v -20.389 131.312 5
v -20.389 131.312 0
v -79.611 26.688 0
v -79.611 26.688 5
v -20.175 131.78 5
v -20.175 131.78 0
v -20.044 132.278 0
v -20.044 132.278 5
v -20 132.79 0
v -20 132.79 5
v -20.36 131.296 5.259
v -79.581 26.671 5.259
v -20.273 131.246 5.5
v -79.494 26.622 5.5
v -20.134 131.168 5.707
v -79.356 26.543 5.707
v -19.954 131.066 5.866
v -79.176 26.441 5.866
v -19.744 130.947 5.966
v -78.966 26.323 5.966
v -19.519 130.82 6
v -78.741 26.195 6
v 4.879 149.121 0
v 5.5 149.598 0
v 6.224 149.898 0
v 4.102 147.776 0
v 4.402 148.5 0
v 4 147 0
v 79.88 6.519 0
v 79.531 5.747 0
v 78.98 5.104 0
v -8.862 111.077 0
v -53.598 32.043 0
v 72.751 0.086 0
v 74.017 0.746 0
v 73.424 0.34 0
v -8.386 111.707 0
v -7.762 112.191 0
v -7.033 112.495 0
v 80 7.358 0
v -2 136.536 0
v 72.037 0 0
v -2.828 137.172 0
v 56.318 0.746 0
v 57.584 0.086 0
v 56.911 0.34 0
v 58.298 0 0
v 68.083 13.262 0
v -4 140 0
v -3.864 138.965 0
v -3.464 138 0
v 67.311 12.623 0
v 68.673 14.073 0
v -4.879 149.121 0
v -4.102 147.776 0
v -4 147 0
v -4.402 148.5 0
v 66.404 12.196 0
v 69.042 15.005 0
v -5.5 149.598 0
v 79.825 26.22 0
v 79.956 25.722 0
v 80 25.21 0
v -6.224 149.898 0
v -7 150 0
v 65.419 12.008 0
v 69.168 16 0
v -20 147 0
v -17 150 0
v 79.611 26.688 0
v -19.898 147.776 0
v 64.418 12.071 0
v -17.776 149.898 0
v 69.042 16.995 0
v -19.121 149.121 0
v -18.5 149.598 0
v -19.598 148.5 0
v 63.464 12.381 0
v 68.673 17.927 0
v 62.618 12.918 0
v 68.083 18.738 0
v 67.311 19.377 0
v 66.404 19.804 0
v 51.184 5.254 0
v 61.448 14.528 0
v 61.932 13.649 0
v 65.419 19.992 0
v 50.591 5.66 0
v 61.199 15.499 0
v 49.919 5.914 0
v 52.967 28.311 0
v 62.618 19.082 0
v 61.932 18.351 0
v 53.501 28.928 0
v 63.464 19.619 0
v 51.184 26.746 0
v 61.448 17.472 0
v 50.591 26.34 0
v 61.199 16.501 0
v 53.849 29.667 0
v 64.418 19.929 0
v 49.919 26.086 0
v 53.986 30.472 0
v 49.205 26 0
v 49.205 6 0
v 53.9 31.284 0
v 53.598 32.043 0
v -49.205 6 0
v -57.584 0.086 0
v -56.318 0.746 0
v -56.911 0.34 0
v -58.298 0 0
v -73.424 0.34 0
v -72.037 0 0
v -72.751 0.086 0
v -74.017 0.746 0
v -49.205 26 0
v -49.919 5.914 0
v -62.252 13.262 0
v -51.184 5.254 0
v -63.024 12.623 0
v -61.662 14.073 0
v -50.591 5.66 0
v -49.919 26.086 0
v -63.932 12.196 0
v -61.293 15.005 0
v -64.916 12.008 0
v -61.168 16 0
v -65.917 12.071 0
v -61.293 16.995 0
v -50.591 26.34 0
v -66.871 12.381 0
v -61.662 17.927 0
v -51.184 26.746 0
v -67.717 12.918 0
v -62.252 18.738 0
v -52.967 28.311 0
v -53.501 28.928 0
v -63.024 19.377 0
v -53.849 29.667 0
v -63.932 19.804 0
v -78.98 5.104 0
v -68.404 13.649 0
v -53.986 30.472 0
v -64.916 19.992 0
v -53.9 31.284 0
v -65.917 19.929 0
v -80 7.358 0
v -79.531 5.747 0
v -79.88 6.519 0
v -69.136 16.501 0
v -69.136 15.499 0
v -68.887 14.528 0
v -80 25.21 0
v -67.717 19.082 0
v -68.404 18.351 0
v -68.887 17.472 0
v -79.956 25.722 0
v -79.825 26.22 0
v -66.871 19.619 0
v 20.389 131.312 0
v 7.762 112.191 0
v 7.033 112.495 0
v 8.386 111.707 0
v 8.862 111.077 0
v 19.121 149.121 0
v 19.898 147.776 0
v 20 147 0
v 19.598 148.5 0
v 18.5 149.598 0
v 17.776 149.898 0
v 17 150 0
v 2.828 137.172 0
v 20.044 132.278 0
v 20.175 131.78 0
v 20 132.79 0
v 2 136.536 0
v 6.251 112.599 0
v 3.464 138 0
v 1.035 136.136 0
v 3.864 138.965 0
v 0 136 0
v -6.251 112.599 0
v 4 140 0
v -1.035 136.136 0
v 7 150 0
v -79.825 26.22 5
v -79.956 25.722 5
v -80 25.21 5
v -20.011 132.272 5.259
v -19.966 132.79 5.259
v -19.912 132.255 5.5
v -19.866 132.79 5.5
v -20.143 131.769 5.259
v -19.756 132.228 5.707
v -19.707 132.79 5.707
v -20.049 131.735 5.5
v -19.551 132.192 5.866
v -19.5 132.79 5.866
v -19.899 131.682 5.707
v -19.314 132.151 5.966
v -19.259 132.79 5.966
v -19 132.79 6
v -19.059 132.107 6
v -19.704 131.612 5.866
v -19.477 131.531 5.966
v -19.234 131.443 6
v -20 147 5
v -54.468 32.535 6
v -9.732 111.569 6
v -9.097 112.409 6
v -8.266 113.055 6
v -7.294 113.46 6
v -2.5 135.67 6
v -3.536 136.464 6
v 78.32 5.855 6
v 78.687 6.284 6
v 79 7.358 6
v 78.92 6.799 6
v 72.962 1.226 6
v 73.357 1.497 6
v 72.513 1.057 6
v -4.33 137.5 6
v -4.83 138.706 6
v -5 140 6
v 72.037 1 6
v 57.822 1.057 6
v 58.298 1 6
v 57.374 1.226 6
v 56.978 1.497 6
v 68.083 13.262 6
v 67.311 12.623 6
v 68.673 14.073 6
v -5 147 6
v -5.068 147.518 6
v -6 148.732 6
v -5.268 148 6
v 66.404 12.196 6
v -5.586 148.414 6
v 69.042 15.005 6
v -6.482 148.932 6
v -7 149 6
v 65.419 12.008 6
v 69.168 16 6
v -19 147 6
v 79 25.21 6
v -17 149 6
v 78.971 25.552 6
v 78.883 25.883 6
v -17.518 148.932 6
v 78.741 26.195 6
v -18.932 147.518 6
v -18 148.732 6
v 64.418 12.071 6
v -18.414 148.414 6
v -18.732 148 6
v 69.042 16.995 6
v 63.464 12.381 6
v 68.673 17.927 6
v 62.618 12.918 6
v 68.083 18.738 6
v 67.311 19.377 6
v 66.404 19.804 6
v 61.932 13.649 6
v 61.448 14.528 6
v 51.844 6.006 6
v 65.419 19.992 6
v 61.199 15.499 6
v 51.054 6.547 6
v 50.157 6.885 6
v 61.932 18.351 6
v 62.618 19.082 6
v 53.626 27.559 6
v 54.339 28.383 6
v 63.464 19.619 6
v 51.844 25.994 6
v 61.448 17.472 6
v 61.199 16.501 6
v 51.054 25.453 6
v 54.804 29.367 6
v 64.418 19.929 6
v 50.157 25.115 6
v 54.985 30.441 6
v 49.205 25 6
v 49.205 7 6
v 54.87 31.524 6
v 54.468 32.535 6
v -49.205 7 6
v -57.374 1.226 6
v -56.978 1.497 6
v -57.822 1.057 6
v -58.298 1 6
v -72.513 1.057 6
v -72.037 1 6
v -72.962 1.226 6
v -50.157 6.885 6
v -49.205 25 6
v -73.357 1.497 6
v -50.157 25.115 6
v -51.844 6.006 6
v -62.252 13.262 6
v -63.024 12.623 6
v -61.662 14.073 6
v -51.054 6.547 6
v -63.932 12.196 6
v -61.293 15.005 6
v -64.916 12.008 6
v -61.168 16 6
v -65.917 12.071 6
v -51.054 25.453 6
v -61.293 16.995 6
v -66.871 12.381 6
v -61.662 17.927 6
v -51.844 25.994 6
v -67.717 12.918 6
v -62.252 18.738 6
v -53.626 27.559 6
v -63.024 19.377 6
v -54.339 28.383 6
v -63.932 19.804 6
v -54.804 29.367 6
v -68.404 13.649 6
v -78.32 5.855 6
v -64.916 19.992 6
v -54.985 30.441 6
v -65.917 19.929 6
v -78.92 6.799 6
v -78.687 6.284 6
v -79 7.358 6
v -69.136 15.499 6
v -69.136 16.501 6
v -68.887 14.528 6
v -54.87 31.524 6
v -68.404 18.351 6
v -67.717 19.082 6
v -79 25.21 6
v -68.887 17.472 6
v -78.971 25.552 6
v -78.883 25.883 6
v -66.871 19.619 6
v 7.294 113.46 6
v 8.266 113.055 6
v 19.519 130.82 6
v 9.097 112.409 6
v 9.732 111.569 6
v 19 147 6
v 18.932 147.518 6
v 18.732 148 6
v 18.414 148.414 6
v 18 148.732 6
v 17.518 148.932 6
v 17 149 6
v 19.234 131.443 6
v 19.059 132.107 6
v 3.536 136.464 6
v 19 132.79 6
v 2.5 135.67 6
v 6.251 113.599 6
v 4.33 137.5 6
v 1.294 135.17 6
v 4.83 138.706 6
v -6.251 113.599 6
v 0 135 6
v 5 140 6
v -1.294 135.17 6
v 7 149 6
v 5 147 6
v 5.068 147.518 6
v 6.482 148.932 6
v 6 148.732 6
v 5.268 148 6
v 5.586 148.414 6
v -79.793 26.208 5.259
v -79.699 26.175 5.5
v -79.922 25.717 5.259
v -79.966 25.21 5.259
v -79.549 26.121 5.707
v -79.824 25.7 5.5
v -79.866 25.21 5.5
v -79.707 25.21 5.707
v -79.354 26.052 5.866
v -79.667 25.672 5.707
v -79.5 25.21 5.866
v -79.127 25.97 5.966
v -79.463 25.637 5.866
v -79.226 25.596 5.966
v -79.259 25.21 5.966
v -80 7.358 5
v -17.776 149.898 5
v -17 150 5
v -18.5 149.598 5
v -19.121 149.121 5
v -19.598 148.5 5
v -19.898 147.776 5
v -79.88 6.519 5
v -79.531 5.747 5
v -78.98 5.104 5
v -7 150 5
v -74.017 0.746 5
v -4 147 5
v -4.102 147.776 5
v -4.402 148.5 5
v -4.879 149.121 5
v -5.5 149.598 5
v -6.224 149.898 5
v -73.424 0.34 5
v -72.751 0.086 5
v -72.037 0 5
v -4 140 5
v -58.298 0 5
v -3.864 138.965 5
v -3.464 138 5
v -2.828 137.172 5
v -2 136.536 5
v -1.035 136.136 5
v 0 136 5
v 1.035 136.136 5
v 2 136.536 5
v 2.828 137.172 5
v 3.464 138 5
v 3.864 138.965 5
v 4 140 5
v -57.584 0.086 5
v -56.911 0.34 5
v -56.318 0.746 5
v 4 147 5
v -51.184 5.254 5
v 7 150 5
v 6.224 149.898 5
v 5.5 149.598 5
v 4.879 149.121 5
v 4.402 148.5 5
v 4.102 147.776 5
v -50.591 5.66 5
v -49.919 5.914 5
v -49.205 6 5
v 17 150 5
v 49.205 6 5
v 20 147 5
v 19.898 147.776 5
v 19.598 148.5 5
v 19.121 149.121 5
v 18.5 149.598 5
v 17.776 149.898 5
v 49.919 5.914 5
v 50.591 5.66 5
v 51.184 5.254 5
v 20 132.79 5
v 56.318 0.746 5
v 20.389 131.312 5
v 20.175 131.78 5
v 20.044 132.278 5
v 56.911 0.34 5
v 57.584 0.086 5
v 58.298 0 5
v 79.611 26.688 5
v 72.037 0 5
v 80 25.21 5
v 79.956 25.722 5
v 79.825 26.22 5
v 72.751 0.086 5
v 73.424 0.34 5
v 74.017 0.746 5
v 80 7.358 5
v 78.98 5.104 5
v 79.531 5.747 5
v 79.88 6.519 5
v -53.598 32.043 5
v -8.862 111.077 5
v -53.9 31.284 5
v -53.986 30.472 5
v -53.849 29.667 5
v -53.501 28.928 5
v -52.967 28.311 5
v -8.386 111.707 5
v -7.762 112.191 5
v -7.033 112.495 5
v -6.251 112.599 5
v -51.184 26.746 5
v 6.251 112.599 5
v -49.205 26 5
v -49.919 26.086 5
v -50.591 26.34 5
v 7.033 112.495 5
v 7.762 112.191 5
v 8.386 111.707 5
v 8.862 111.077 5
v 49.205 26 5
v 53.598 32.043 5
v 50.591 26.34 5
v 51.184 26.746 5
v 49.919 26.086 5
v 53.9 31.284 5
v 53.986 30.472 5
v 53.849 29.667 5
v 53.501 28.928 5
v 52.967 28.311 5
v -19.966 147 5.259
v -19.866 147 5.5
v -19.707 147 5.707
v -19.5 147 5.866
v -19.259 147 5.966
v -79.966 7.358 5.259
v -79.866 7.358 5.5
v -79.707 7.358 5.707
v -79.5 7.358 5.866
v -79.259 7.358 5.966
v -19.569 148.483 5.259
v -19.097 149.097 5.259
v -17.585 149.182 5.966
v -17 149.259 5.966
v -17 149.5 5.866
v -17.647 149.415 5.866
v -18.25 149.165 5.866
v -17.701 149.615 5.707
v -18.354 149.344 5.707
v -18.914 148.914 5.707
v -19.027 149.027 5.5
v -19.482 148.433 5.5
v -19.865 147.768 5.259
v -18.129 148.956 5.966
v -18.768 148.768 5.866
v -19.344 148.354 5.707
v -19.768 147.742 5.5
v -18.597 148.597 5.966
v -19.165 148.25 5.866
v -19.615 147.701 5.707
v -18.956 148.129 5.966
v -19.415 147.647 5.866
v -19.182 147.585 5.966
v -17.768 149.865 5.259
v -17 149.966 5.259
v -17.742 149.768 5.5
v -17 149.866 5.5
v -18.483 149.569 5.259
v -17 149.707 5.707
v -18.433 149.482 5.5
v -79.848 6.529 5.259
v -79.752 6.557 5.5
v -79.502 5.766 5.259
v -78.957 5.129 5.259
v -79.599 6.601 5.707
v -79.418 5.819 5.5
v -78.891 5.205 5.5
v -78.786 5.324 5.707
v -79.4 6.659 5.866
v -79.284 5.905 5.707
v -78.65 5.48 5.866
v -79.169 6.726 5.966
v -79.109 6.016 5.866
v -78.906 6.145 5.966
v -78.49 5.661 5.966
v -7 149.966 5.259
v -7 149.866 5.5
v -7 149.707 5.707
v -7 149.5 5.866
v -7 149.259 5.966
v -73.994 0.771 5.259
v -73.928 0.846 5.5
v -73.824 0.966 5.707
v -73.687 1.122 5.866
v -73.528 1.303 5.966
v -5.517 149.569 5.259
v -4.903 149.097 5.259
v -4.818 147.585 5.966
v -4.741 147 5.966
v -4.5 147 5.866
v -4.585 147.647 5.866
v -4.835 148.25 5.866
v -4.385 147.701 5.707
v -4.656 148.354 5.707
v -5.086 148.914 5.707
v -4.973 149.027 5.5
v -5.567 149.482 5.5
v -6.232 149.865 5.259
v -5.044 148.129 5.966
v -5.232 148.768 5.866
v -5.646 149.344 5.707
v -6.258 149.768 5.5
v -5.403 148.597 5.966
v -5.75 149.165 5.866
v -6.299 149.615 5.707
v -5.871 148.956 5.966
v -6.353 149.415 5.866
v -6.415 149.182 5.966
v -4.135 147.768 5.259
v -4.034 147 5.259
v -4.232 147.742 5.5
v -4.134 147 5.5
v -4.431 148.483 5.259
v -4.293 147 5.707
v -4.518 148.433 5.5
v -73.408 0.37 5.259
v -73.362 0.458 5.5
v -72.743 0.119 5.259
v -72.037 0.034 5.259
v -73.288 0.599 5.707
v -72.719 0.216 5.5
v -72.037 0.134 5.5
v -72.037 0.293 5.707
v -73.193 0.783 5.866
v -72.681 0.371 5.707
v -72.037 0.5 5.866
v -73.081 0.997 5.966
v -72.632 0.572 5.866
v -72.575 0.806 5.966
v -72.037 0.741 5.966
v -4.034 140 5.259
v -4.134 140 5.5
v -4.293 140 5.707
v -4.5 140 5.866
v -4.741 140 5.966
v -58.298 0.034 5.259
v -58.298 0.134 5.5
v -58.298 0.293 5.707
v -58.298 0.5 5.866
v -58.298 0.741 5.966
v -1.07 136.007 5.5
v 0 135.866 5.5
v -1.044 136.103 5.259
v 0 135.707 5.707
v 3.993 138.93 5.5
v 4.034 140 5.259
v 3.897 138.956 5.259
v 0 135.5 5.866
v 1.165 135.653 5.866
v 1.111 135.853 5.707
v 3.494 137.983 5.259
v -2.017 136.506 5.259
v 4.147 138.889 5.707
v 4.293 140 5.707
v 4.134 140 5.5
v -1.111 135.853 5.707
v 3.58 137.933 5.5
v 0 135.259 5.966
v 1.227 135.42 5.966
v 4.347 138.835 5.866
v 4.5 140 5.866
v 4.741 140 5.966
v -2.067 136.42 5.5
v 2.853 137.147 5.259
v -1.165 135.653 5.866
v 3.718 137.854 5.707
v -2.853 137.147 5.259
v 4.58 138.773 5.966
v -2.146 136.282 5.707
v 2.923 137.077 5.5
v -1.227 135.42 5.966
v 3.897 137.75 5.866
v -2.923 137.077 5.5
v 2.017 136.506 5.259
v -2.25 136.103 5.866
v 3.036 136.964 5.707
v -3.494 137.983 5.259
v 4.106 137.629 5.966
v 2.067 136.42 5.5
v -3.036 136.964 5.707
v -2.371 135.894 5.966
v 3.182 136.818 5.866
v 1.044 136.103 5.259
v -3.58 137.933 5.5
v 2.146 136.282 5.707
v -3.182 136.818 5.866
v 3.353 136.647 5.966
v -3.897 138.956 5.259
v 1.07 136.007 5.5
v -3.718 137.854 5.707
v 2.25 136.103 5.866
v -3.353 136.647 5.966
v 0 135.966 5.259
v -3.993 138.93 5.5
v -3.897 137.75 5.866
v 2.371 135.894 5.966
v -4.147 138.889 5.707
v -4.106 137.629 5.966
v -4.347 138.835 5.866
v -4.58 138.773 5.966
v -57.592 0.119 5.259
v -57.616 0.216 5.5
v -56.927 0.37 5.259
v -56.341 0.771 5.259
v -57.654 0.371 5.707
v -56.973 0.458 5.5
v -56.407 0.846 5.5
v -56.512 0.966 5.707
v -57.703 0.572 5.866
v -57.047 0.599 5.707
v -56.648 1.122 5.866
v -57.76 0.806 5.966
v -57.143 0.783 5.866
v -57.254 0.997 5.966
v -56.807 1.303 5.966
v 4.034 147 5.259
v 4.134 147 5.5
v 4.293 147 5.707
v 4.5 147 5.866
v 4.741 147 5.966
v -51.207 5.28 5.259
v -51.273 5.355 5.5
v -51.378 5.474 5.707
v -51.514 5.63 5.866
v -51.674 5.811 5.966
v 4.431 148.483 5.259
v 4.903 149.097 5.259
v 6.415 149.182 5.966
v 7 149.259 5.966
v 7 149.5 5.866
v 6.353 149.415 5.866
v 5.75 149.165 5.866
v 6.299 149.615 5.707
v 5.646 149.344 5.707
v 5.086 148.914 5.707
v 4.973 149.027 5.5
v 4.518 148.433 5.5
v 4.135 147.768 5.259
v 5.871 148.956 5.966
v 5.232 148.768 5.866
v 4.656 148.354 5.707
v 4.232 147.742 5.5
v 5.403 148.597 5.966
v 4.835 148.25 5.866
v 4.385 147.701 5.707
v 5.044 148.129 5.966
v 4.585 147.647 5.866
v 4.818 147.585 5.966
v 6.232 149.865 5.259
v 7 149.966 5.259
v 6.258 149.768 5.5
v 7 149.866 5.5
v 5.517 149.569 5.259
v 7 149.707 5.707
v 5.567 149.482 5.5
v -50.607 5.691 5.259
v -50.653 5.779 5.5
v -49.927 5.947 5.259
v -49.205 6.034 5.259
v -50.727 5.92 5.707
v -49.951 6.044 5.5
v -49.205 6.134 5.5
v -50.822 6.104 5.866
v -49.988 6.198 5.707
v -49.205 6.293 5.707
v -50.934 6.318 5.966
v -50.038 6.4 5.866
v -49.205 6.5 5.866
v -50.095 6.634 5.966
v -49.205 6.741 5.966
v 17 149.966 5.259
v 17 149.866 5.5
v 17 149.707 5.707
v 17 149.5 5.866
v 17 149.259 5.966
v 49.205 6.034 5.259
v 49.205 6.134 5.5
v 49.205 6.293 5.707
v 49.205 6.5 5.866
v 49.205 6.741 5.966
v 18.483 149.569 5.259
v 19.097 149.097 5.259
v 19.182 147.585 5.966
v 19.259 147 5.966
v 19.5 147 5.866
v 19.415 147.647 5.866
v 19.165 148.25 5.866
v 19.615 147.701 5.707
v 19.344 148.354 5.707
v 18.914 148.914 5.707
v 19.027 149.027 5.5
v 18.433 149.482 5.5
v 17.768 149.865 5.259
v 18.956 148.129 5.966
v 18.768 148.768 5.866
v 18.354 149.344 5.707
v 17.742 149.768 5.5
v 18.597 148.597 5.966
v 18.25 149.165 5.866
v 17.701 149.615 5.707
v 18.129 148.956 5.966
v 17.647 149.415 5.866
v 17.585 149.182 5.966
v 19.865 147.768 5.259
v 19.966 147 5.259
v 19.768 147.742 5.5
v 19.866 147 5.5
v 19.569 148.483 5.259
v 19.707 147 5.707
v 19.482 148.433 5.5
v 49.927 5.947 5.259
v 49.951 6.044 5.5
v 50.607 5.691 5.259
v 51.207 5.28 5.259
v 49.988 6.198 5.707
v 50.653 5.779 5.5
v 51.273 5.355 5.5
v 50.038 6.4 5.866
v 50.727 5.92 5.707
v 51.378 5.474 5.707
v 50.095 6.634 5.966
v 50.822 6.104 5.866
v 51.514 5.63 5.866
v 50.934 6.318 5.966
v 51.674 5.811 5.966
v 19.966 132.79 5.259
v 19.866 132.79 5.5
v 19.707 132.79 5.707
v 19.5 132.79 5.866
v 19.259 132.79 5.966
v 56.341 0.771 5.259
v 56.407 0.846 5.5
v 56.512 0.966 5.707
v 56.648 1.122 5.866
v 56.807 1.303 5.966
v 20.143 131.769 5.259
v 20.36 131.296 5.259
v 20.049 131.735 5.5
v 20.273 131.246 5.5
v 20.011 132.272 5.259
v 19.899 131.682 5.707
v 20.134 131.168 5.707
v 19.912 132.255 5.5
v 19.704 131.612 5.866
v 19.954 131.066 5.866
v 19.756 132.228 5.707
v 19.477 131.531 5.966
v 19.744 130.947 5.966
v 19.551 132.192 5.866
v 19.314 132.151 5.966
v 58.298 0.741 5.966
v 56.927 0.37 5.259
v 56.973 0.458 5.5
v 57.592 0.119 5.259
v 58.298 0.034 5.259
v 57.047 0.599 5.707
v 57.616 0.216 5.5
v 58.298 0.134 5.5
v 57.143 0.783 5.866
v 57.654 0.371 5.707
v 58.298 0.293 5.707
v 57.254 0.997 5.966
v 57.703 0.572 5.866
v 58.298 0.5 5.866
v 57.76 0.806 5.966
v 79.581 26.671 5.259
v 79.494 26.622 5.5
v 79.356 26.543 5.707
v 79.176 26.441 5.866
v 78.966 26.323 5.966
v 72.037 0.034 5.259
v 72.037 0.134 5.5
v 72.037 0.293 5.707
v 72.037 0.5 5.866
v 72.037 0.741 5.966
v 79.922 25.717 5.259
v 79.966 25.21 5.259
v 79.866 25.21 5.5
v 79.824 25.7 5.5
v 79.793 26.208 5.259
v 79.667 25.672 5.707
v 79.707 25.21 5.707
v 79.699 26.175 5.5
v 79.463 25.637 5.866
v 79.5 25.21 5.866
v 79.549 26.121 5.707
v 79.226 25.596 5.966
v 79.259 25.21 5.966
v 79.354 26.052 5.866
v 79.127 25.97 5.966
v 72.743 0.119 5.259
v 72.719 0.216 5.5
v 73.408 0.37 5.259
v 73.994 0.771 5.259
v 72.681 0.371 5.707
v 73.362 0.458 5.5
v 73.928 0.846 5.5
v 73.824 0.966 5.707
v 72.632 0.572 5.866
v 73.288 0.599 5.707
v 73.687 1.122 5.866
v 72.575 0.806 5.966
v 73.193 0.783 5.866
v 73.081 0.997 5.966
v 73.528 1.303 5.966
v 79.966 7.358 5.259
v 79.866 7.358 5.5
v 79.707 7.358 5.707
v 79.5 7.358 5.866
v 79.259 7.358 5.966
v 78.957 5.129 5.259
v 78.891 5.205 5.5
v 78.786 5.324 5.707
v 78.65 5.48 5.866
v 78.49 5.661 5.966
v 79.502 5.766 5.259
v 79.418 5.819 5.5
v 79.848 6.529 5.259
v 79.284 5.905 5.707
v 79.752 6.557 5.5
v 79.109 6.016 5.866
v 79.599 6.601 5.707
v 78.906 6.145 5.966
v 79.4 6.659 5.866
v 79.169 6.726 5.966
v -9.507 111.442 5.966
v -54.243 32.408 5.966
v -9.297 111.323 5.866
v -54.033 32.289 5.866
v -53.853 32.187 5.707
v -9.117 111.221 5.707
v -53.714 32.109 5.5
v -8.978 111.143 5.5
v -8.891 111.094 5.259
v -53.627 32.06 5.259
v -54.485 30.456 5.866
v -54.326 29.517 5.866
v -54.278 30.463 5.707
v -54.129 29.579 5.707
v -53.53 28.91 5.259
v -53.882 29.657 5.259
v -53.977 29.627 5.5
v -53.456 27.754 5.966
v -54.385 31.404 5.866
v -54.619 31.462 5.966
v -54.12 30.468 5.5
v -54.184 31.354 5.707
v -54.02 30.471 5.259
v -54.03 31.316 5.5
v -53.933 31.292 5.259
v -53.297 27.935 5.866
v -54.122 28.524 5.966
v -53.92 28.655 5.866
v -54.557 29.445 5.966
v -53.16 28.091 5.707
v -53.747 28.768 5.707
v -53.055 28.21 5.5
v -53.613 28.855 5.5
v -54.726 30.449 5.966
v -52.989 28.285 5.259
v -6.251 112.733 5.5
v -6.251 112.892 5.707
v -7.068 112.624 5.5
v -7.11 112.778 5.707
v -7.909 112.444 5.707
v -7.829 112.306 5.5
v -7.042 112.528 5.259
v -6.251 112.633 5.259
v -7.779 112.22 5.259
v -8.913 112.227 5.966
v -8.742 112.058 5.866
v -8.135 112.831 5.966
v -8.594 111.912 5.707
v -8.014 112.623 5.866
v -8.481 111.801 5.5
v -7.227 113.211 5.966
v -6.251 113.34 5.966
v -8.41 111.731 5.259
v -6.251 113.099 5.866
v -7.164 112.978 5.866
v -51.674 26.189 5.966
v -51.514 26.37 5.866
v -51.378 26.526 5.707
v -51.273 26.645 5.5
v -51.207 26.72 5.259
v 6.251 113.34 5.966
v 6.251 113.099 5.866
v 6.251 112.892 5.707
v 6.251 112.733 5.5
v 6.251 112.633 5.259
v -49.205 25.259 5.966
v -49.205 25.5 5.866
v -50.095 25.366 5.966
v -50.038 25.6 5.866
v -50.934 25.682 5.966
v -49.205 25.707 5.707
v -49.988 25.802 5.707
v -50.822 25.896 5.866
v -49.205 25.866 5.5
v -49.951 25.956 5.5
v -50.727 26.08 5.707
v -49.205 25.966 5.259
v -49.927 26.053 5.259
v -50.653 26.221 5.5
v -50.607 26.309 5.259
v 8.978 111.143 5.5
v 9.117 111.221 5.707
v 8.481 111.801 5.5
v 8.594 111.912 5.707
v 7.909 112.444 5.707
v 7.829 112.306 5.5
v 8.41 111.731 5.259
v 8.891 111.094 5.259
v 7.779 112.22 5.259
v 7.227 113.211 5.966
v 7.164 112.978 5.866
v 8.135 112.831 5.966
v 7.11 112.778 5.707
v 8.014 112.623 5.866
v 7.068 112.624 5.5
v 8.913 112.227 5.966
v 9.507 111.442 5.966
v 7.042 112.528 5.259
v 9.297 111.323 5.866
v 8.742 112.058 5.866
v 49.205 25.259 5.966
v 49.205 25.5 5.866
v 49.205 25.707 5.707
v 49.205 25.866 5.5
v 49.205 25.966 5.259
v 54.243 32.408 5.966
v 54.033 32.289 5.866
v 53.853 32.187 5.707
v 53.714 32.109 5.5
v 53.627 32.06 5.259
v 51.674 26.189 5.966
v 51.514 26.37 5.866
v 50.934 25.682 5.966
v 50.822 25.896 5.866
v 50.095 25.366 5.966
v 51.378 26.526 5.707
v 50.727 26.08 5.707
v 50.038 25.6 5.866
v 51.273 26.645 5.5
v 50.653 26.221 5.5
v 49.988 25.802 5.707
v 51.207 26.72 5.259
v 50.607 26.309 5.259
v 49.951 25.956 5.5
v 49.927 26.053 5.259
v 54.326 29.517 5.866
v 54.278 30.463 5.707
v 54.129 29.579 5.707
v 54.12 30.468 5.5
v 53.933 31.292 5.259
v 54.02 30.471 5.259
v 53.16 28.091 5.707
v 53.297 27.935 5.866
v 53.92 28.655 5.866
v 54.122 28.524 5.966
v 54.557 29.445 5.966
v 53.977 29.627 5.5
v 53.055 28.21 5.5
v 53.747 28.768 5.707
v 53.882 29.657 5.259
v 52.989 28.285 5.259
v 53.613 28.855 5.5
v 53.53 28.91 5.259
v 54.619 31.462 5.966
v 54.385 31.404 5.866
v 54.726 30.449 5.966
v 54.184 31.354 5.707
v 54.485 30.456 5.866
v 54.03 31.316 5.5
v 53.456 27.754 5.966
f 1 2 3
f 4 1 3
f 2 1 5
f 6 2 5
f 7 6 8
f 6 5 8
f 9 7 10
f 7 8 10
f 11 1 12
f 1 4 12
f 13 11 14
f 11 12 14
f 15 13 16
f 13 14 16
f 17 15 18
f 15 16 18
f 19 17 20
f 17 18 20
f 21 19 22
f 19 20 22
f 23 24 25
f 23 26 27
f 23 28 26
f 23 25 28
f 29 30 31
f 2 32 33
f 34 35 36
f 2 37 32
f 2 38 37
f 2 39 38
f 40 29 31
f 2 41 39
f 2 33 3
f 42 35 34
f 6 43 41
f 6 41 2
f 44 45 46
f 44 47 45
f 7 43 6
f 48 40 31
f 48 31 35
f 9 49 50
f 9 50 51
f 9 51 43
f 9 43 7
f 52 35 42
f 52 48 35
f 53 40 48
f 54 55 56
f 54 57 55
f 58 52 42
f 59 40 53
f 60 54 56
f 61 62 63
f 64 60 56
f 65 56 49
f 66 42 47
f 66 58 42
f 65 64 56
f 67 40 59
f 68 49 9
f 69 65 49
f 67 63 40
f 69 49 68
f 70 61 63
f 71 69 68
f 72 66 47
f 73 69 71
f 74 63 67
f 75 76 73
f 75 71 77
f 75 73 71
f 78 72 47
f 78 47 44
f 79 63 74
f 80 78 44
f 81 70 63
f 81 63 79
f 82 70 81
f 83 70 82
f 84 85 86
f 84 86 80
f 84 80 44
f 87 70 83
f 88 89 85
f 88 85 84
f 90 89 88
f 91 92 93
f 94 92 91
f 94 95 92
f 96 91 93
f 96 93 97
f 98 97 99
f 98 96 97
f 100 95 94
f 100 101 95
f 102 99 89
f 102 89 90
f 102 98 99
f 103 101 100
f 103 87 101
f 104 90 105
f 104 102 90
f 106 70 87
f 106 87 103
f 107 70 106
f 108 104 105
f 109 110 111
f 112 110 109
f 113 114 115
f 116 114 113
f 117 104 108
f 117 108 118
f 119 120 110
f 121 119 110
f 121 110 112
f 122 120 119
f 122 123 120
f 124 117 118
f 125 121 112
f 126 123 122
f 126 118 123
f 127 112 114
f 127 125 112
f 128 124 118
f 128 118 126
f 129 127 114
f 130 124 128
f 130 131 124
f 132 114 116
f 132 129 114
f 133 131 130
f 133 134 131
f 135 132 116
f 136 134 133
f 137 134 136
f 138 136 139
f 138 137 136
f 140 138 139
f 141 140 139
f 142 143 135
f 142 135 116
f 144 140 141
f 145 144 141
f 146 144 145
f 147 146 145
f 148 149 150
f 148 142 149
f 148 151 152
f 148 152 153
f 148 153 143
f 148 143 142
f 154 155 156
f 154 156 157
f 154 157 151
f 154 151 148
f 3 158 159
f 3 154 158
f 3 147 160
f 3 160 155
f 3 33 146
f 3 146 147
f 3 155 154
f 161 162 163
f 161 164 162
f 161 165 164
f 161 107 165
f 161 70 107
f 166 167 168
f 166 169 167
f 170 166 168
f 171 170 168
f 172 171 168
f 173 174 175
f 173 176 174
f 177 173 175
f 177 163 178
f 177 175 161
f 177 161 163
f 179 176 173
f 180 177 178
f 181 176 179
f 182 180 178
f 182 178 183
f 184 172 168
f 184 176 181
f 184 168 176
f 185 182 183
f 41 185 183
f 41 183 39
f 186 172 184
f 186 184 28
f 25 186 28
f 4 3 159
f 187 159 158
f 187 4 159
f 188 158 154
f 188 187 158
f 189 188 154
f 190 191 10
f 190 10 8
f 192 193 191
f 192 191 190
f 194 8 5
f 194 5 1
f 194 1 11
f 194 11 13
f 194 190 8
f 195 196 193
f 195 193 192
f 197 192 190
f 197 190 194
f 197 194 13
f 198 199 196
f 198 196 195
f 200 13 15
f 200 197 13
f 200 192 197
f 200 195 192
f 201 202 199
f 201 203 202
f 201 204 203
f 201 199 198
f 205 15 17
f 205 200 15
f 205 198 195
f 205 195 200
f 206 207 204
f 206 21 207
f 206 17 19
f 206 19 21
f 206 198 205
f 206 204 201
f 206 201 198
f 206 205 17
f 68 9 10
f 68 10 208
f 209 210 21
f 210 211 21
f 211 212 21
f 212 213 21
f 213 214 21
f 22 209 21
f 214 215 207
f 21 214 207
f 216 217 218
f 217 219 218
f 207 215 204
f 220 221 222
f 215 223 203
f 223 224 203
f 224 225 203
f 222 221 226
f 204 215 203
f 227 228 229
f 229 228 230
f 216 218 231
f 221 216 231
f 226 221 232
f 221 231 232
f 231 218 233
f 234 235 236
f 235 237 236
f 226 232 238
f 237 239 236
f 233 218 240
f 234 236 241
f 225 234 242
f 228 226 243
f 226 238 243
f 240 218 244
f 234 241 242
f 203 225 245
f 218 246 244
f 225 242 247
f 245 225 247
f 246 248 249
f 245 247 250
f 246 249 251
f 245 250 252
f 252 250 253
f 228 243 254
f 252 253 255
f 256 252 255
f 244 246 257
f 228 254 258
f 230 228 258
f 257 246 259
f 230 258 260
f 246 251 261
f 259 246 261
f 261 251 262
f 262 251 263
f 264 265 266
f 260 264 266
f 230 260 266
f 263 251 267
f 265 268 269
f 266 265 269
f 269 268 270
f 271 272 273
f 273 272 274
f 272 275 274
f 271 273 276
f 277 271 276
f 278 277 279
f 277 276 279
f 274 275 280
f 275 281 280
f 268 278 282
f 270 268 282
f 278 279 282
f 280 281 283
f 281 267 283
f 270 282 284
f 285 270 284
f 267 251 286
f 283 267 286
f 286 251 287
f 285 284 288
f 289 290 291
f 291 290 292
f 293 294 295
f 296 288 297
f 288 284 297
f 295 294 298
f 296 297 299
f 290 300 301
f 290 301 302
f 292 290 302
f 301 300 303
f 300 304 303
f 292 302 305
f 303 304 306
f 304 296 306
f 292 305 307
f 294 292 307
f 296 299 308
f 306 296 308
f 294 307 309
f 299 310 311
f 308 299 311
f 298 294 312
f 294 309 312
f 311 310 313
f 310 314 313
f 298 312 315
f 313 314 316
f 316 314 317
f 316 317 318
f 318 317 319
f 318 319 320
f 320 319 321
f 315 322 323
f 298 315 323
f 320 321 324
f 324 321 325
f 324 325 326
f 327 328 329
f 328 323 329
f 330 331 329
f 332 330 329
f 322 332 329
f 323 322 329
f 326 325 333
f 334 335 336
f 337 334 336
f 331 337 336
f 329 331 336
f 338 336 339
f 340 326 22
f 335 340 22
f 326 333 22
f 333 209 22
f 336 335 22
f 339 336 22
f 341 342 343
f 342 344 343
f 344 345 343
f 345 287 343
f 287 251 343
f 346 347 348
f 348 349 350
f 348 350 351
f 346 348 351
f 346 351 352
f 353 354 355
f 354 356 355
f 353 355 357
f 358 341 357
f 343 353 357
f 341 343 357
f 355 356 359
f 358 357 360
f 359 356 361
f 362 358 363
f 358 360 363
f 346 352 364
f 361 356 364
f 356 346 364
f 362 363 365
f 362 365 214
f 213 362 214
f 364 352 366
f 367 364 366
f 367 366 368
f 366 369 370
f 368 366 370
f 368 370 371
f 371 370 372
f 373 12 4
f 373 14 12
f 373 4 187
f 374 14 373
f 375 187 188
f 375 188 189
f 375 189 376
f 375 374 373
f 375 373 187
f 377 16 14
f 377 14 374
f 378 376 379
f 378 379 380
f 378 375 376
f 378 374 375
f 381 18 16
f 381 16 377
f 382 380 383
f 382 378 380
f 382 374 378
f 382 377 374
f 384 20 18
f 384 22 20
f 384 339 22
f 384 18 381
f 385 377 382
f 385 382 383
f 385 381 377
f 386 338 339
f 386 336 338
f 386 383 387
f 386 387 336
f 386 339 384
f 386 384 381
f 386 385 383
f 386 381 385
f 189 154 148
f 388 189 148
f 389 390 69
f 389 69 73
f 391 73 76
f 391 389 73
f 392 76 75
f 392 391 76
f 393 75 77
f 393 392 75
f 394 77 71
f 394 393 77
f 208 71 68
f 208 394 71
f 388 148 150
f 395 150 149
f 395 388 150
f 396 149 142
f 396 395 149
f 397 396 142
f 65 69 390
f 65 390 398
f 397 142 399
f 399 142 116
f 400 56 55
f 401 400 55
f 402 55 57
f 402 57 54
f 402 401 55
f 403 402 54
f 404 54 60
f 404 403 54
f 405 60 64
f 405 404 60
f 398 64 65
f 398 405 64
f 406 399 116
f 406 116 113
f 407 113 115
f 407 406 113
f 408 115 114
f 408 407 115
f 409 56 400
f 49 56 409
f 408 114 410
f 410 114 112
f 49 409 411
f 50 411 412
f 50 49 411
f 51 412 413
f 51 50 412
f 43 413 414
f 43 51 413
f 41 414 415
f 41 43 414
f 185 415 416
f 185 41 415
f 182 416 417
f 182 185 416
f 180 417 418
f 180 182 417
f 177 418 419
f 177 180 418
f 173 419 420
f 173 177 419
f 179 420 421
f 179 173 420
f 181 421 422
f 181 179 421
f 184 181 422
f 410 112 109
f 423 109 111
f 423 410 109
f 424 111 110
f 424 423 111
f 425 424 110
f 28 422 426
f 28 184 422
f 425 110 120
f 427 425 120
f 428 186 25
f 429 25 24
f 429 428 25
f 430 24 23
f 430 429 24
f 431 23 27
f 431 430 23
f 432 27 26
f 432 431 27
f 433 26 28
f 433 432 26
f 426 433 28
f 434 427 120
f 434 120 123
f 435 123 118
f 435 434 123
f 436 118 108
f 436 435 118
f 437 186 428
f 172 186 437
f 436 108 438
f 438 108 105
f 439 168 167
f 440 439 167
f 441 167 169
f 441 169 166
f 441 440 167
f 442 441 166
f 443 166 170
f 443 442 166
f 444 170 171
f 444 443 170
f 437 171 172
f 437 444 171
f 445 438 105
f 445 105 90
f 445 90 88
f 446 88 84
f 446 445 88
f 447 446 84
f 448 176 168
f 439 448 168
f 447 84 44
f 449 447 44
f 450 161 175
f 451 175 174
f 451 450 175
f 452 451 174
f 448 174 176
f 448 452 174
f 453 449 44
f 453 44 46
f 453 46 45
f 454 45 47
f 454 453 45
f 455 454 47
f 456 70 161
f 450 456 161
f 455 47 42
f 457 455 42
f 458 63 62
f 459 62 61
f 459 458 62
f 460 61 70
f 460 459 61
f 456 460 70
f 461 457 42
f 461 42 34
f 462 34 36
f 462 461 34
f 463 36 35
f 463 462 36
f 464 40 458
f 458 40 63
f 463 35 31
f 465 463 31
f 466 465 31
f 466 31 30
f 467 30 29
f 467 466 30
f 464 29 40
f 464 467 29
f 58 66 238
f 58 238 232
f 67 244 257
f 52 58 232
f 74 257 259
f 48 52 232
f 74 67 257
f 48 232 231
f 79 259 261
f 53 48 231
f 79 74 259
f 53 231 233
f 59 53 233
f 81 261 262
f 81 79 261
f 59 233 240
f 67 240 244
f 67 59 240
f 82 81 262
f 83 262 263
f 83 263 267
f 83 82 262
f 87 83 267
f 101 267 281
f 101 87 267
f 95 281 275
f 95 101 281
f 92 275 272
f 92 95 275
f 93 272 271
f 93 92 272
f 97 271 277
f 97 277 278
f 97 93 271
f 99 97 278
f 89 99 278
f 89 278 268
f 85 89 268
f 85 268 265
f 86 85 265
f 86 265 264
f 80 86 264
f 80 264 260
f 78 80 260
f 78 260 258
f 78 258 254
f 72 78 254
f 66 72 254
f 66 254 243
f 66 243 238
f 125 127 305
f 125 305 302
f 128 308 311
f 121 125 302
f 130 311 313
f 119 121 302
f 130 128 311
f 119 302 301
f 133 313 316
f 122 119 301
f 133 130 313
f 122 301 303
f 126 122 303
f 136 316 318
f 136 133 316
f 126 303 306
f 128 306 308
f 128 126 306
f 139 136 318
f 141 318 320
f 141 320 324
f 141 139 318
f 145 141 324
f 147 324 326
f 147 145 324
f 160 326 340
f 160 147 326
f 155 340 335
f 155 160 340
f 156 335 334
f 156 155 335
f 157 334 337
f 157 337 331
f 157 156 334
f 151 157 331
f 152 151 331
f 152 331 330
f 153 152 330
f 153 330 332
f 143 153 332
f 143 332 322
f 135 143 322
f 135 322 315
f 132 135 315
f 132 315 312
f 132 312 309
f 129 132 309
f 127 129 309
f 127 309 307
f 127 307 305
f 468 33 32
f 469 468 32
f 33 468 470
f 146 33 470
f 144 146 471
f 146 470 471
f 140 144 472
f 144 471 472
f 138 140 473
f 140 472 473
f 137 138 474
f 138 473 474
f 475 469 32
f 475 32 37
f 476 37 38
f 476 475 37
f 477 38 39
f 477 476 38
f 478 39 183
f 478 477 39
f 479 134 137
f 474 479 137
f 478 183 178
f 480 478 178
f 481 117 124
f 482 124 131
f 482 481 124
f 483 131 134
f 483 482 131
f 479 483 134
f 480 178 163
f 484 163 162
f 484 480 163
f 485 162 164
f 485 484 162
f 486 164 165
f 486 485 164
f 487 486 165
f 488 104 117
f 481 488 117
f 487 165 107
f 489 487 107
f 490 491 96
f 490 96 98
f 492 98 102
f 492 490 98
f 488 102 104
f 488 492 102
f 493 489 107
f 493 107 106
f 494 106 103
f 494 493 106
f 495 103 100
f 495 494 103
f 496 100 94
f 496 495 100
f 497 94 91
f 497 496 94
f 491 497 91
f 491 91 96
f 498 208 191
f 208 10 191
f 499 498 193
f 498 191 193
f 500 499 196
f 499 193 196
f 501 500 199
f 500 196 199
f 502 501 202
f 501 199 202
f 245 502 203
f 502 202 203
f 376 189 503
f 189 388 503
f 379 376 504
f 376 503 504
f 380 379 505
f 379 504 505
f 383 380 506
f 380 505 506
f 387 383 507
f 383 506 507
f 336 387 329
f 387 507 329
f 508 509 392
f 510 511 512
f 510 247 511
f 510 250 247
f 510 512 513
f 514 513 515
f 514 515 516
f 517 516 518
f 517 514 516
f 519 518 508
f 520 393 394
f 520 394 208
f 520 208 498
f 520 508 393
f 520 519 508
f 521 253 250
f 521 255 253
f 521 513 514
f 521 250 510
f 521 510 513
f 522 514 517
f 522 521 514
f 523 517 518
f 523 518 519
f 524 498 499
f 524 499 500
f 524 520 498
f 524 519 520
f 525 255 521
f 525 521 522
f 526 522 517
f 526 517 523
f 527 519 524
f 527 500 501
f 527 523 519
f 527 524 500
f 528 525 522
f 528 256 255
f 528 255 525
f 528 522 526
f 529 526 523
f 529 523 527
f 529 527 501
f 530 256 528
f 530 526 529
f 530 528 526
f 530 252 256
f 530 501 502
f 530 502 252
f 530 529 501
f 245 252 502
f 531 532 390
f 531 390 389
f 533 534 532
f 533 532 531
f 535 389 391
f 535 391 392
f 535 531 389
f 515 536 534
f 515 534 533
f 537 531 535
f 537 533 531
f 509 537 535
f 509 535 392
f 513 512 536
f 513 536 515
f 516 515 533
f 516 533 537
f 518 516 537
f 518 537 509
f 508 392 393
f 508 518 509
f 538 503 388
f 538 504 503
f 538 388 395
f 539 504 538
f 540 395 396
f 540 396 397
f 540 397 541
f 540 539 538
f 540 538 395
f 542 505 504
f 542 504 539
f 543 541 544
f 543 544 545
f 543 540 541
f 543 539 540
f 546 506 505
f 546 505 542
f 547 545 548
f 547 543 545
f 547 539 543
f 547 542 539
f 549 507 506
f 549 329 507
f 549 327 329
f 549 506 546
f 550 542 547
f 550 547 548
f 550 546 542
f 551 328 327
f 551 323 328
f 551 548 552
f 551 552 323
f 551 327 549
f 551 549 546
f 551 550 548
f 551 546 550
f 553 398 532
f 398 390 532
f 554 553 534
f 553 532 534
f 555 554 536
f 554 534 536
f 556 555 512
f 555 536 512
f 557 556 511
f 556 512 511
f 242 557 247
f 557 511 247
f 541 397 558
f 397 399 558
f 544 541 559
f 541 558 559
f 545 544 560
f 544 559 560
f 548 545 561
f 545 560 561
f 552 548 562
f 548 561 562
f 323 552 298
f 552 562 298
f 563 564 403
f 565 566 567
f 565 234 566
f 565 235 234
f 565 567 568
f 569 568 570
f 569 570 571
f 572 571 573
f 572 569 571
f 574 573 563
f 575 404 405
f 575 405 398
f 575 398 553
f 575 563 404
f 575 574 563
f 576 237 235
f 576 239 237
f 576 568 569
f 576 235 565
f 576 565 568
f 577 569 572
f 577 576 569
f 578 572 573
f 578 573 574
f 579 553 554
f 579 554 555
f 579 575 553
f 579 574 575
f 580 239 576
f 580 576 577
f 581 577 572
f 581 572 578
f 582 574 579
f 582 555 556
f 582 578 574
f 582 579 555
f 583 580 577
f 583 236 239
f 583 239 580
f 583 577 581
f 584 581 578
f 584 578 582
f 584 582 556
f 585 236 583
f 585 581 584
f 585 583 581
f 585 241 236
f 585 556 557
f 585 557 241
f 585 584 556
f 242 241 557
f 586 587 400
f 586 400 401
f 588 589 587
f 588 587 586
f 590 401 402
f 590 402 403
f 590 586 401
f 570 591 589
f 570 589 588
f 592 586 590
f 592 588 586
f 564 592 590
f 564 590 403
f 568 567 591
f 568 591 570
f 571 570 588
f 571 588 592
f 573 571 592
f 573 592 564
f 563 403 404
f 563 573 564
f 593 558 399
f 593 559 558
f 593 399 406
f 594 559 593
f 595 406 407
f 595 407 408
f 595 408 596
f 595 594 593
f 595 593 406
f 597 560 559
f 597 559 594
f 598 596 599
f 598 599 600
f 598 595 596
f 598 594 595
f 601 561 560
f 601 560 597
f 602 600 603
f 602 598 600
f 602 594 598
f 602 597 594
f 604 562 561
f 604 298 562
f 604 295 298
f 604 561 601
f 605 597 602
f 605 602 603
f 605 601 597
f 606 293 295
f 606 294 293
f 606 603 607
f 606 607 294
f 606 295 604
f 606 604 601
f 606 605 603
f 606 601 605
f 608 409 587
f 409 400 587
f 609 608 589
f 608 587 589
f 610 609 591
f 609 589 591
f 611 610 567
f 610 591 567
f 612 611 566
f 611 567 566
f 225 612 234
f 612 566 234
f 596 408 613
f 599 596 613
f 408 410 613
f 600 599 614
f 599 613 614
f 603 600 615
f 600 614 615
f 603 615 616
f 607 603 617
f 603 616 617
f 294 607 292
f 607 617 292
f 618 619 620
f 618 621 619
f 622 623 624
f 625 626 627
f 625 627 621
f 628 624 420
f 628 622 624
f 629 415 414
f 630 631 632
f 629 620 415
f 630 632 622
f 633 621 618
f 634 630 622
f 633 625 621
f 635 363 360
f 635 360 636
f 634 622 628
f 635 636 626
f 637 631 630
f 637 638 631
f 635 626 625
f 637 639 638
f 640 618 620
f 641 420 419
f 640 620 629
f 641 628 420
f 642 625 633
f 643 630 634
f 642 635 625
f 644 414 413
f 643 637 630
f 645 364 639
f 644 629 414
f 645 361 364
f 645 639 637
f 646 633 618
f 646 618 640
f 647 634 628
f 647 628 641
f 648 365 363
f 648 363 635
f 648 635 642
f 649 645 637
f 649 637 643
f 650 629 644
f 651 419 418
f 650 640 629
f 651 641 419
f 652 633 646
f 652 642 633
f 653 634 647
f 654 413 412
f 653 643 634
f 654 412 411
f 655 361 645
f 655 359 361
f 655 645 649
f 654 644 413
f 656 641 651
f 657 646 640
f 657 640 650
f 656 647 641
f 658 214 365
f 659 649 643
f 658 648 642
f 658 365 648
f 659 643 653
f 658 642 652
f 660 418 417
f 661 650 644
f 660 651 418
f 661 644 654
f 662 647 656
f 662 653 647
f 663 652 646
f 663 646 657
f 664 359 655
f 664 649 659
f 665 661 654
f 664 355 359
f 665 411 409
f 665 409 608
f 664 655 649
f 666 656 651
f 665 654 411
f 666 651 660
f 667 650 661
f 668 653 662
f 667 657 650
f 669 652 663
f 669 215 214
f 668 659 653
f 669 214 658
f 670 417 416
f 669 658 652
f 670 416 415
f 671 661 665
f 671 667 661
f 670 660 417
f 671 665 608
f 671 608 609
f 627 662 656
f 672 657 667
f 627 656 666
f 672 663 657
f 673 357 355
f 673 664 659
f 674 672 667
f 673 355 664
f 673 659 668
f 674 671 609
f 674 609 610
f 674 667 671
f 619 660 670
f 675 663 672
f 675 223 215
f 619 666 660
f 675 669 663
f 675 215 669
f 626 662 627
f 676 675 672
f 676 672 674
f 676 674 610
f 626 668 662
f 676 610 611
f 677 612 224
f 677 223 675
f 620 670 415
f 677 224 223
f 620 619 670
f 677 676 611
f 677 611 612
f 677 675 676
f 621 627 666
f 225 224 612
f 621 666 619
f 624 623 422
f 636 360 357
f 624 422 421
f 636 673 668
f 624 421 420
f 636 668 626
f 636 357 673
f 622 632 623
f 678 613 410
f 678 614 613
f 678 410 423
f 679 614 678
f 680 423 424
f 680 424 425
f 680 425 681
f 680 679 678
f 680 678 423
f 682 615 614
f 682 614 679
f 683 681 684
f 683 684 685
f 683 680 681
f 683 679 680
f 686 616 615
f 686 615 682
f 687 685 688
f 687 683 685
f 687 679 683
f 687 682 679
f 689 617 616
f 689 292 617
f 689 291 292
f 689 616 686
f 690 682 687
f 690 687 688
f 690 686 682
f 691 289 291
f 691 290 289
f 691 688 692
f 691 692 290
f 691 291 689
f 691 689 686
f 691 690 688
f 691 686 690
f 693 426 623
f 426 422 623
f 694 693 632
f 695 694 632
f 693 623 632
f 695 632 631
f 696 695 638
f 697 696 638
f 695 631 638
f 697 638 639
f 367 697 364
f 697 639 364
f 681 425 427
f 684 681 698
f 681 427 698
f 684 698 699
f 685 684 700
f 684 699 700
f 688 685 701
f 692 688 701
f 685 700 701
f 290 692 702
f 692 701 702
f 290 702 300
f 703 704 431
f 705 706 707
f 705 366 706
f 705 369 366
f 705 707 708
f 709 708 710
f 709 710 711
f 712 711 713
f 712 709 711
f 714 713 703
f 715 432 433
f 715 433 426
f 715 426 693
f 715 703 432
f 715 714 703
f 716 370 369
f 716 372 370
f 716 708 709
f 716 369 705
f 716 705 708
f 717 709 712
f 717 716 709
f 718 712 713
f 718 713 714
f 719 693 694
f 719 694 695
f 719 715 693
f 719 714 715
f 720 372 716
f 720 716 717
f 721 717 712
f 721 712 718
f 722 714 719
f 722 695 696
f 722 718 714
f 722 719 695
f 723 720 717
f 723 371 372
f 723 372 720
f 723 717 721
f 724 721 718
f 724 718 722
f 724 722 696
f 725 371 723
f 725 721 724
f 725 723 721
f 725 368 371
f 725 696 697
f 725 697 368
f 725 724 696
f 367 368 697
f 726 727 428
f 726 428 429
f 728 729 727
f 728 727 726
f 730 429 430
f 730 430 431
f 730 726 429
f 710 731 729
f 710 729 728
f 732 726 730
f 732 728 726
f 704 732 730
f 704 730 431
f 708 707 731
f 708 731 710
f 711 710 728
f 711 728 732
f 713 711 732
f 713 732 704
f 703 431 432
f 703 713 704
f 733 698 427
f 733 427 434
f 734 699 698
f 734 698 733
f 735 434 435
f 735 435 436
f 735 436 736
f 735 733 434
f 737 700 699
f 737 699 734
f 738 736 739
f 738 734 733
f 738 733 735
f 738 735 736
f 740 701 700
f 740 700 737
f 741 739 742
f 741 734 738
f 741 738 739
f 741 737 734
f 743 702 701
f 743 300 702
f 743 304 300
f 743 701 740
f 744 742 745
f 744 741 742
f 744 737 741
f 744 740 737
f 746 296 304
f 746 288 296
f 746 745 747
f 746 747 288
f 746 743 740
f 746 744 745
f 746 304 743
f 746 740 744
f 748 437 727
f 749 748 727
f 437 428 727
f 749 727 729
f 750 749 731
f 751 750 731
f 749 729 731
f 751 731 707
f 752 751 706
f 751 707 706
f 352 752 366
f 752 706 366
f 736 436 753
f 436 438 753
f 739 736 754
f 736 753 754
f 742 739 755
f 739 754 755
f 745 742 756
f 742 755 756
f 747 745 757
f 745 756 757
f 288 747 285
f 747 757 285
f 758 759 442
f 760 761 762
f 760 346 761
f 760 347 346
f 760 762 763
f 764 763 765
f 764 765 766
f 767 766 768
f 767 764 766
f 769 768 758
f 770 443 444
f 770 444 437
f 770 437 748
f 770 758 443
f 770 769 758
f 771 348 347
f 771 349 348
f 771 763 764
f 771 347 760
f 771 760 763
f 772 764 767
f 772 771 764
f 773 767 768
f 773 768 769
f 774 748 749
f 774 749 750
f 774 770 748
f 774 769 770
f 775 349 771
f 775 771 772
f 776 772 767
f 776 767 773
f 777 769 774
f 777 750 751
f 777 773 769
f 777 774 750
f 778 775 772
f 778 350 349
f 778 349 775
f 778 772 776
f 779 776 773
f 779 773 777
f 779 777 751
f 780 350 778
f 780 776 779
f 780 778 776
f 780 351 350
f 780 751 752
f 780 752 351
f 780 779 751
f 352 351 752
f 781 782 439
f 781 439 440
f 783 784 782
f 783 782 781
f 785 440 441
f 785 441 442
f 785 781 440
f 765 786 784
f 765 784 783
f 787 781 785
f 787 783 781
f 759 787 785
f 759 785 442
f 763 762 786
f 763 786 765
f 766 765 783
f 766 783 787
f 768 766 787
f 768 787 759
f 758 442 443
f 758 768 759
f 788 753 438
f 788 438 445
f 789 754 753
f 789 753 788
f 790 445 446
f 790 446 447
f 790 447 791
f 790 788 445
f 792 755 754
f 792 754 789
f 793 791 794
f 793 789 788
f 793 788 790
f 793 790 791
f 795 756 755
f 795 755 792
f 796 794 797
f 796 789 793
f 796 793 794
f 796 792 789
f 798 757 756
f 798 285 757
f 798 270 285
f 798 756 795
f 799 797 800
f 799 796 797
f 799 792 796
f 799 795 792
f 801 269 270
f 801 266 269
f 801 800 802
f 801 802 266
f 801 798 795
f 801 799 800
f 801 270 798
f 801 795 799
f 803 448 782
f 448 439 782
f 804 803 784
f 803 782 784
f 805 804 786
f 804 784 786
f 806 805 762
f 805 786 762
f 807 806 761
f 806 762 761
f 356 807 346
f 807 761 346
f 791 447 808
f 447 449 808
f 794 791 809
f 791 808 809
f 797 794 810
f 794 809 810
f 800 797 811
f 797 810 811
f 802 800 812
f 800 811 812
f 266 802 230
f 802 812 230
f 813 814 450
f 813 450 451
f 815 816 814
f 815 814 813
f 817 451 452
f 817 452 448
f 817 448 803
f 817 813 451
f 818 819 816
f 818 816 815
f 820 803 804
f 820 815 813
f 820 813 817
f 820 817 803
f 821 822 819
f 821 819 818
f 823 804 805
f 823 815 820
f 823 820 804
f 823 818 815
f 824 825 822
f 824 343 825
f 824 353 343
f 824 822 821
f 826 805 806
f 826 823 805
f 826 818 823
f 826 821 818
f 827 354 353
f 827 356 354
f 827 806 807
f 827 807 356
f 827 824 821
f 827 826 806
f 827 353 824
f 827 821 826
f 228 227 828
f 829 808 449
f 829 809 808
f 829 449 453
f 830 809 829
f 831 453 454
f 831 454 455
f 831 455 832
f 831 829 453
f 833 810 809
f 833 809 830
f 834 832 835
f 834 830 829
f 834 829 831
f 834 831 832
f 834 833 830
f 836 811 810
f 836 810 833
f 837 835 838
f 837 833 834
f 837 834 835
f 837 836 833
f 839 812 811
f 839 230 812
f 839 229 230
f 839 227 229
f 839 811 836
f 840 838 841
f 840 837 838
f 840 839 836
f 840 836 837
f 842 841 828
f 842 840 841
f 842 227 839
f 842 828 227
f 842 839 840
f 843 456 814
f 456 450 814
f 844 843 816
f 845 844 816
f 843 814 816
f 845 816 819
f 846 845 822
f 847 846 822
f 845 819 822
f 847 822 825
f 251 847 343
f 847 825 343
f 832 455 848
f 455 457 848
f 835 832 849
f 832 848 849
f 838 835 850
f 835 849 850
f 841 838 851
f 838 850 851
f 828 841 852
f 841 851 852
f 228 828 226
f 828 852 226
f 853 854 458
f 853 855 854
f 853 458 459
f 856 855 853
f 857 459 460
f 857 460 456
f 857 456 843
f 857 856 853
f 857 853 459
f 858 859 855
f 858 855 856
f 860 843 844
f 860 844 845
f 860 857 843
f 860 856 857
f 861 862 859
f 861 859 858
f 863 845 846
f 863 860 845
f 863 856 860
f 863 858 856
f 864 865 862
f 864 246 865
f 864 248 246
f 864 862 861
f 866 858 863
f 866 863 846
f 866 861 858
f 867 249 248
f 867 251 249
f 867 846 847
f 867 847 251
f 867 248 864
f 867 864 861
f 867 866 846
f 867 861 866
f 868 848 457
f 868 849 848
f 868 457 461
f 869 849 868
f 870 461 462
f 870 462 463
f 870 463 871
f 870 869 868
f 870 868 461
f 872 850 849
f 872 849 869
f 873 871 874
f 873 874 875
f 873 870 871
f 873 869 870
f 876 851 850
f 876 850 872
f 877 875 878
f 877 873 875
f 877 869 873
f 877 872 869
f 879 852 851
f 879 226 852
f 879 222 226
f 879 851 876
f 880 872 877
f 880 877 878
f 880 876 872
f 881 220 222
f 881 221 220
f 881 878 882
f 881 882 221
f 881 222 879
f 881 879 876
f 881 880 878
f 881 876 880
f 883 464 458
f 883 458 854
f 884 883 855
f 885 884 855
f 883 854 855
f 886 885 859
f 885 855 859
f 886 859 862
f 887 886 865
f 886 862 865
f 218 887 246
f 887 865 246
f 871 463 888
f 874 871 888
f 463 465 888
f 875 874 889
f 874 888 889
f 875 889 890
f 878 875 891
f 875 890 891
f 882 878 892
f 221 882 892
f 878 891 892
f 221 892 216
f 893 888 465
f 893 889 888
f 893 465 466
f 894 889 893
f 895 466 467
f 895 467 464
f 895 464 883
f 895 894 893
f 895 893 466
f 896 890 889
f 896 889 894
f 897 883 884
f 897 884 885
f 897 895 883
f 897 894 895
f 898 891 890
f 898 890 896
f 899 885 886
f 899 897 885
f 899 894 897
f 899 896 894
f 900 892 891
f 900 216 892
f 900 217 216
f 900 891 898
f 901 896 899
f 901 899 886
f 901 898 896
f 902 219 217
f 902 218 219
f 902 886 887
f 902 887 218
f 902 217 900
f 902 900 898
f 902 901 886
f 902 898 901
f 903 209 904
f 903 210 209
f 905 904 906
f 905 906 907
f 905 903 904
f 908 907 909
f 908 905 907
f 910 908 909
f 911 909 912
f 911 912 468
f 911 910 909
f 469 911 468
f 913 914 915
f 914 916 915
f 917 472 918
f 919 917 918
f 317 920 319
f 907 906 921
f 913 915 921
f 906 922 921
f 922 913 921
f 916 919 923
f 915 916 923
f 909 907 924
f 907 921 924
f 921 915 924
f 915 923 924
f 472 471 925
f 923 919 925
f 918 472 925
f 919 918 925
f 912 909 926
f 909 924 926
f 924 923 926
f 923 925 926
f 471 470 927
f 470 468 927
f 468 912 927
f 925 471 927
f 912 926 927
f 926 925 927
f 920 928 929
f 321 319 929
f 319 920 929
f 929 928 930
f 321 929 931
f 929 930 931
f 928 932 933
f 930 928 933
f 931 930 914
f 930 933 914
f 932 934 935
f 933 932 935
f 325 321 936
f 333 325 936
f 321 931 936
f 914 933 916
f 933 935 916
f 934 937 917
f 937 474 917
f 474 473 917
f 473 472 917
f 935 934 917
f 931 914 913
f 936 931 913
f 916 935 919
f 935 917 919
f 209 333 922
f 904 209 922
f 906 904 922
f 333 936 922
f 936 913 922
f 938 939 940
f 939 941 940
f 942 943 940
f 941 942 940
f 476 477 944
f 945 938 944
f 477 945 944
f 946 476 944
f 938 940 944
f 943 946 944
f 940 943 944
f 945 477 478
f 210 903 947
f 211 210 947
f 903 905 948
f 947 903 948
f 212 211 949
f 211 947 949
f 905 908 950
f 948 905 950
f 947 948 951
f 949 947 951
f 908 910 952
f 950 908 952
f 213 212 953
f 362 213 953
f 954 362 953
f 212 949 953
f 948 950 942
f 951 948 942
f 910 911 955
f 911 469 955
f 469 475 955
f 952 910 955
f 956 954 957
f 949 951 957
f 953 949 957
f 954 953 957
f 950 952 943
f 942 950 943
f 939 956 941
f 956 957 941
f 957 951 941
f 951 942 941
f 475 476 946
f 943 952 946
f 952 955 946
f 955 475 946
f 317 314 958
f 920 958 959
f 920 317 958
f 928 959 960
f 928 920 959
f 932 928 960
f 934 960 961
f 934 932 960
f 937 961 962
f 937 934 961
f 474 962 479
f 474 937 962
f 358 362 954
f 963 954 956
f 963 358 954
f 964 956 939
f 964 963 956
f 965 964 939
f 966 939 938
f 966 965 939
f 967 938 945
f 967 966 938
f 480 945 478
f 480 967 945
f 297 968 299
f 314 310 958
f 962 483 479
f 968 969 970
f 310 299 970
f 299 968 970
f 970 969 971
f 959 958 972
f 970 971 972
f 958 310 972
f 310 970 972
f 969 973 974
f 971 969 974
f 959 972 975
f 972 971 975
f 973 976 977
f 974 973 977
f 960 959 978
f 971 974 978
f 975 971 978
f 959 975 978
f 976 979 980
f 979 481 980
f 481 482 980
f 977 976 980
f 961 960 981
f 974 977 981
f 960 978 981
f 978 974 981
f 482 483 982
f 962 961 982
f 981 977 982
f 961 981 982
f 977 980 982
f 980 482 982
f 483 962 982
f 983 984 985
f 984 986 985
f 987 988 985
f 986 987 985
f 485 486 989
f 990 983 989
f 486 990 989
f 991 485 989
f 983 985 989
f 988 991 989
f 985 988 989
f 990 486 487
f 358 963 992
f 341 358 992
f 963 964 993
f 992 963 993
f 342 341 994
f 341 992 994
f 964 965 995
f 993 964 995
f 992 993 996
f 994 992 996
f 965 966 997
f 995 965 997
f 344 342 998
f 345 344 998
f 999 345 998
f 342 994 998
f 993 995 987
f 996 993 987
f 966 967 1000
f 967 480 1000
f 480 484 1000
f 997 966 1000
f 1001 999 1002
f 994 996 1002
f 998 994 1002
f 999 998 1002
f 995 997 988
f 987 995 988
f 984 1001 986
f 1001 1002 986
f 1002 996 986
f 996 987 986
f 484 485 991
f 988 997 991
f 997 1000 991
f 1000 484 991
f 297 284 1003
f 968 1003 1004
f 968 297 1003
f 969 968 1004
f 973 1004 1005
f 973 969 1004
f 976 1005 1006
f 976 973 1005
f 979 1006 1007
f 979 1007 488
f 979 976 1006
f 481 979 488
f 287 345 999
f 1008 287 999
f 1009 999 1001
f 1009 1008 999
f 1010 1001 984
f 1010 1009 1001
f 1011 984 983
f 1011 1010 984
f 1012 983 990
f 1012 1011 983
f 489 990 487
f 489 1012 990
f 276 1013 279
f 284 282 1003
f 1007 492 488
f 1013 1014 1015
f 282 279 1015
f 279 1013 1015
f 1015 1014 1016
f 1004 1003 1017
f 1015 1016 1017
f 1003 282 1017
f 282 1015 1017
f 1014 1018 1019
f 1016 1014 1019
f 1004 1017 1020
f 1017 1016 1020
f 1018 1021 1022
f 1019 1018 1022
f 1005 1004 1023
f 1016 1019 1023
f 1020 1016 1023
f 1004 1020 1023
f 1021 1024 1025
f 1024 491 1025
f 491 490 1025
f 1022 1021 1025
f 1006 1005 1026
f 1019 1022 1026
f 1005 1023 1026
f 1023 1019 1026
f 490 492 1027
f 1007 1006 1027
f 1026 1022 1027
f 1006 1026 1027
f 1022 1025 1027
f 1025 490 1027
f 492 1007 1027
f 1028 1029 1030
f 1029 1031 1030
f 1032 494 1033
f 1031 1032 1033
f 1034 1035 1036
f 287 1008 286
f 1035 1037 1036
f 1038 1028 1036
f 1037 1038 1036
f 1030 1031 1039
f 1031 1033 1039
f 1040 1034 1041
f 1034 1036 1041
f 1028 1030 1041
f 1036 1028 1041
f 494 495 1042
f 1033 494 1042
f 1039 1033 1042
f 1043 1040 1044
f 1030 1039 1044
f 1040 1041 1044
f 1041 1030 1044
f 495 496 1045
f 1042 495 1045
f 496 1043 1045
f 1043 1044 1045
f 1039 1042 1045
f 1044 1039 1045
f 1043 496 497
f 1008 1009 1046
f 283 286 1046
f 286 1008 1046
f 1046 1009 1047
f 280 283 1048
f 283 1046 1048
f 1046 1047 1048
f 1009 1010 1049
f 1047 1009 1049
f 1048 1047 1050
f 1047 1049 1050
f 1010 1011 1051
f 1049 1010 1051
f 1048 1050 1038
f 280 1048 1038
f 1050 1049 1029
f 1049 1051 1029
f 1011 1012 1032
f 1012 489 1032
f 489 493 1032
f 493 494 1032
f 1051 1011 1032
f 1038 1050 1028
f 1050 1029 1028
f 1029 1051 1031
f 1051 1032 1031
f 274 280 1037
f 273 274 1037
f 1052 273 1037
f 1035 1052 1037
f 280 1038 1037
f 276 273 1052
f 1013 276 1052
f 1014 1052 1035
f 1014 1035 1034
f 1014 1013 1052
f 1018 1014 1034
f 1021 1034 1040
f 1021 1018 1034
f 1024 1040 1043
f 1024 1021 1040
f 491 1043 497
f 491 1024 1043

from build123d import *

# Parameters (mm, degrees)
SKETCH_R    = 4
PAD_DEPTH   = 6
FILLET_R    = 3
FILLET001_R = 1


with BuildPart() as part:
    # Sketch → Pad (new body)
    with BuildSketch(Plane.XY):
        with BuildLine():
            Line((-20, 132), (-80, 26))
            Line((-80, 26), (-80, 6))
            Line((-80, 6), (-73.167603, 0))
            Line((-73.167603, 0), (-57.167603, 0))
            Line((-57.167603, 0), (-50.335206, 6))
            Line((-50.335206, 6), (50.335206, 6))
            Line((50.335206, 6), (57.167603, 0))
            Line((57.167603, 0), (73.167603, 0))
            Line((73.167603, 0), (80, 6))
            Line((80, 6), (80, 26))
            Line((80, 26), (20, 132))
            Line((20, 132), (20, 150))
            Line((4, 150), (20, 150))
            Line((4, 140), (4, 150))
            ThreePointArc((-4, 140), (0, 136), (4, 140))
            Line((-4, 150), (-4, 140))
            Line((-20, 150), (-4, 150))
            Line((-20, 132), (-20, 150))
        make_face()
        with Locations((-65.167603, 16)):
            Circle(SKETCH_R, mode=Mode.SUBTRACT)
        with Locations((65.167603, 16)):
            Circle(SKETCH_R, mode=Mode.SUBTRACT)
        Polygon((-54.799288, 29.920219), (-8, 112.59896), (8, 112.59896), (54.799288, 29.920219), (50.335206, 26), (-50.335206, 26), align=None, mode=Mode.SUBTRACT)
    extrude(amount=PAD_DEPTH)

    # Fillet
    fillet_edges = [part.edges().sort_by_distance(p)[0] for p in [
        (-20, 132, 3),
        (-80, 26, 3),
        (-80, 6, 3),
        (-73.167603, 0, 3),
        (-57.167603, 0, 3),
        (-50.335206, 6, 3),
        (50.335206, 6, 3),
        (57.167603, 0, 3),
        (73.167603, 0, 3),
        (80, 6, 3),
        (80, 26, 3),
        (20, 132, 3),
        (20, 150, 3),
        (4, 150, 3),
        (-4, 150, 3),
        (-20, 150, 3),
        (-54.799288, 29.920219, 3),
        (-8, 112.59896, 3),
        (8, 112.59896, 3),
        (54.799288, 29.920219, 3),
        (50.335206, 26, 3),
        (-50.335206, 26, 3),
    ]]
    fillet(fillet_edges, radius=FILLET_R)

    # Fillet001
    fillet001_edges = [part.edges().sort_by_distance(p)[0] for p in [
        (-50, 79, 6),
        (-31.229726, 71.559778, 6),
    ]]
    fillet(fillet001_edges, radius=FILLET001_R)


solid = part.part
